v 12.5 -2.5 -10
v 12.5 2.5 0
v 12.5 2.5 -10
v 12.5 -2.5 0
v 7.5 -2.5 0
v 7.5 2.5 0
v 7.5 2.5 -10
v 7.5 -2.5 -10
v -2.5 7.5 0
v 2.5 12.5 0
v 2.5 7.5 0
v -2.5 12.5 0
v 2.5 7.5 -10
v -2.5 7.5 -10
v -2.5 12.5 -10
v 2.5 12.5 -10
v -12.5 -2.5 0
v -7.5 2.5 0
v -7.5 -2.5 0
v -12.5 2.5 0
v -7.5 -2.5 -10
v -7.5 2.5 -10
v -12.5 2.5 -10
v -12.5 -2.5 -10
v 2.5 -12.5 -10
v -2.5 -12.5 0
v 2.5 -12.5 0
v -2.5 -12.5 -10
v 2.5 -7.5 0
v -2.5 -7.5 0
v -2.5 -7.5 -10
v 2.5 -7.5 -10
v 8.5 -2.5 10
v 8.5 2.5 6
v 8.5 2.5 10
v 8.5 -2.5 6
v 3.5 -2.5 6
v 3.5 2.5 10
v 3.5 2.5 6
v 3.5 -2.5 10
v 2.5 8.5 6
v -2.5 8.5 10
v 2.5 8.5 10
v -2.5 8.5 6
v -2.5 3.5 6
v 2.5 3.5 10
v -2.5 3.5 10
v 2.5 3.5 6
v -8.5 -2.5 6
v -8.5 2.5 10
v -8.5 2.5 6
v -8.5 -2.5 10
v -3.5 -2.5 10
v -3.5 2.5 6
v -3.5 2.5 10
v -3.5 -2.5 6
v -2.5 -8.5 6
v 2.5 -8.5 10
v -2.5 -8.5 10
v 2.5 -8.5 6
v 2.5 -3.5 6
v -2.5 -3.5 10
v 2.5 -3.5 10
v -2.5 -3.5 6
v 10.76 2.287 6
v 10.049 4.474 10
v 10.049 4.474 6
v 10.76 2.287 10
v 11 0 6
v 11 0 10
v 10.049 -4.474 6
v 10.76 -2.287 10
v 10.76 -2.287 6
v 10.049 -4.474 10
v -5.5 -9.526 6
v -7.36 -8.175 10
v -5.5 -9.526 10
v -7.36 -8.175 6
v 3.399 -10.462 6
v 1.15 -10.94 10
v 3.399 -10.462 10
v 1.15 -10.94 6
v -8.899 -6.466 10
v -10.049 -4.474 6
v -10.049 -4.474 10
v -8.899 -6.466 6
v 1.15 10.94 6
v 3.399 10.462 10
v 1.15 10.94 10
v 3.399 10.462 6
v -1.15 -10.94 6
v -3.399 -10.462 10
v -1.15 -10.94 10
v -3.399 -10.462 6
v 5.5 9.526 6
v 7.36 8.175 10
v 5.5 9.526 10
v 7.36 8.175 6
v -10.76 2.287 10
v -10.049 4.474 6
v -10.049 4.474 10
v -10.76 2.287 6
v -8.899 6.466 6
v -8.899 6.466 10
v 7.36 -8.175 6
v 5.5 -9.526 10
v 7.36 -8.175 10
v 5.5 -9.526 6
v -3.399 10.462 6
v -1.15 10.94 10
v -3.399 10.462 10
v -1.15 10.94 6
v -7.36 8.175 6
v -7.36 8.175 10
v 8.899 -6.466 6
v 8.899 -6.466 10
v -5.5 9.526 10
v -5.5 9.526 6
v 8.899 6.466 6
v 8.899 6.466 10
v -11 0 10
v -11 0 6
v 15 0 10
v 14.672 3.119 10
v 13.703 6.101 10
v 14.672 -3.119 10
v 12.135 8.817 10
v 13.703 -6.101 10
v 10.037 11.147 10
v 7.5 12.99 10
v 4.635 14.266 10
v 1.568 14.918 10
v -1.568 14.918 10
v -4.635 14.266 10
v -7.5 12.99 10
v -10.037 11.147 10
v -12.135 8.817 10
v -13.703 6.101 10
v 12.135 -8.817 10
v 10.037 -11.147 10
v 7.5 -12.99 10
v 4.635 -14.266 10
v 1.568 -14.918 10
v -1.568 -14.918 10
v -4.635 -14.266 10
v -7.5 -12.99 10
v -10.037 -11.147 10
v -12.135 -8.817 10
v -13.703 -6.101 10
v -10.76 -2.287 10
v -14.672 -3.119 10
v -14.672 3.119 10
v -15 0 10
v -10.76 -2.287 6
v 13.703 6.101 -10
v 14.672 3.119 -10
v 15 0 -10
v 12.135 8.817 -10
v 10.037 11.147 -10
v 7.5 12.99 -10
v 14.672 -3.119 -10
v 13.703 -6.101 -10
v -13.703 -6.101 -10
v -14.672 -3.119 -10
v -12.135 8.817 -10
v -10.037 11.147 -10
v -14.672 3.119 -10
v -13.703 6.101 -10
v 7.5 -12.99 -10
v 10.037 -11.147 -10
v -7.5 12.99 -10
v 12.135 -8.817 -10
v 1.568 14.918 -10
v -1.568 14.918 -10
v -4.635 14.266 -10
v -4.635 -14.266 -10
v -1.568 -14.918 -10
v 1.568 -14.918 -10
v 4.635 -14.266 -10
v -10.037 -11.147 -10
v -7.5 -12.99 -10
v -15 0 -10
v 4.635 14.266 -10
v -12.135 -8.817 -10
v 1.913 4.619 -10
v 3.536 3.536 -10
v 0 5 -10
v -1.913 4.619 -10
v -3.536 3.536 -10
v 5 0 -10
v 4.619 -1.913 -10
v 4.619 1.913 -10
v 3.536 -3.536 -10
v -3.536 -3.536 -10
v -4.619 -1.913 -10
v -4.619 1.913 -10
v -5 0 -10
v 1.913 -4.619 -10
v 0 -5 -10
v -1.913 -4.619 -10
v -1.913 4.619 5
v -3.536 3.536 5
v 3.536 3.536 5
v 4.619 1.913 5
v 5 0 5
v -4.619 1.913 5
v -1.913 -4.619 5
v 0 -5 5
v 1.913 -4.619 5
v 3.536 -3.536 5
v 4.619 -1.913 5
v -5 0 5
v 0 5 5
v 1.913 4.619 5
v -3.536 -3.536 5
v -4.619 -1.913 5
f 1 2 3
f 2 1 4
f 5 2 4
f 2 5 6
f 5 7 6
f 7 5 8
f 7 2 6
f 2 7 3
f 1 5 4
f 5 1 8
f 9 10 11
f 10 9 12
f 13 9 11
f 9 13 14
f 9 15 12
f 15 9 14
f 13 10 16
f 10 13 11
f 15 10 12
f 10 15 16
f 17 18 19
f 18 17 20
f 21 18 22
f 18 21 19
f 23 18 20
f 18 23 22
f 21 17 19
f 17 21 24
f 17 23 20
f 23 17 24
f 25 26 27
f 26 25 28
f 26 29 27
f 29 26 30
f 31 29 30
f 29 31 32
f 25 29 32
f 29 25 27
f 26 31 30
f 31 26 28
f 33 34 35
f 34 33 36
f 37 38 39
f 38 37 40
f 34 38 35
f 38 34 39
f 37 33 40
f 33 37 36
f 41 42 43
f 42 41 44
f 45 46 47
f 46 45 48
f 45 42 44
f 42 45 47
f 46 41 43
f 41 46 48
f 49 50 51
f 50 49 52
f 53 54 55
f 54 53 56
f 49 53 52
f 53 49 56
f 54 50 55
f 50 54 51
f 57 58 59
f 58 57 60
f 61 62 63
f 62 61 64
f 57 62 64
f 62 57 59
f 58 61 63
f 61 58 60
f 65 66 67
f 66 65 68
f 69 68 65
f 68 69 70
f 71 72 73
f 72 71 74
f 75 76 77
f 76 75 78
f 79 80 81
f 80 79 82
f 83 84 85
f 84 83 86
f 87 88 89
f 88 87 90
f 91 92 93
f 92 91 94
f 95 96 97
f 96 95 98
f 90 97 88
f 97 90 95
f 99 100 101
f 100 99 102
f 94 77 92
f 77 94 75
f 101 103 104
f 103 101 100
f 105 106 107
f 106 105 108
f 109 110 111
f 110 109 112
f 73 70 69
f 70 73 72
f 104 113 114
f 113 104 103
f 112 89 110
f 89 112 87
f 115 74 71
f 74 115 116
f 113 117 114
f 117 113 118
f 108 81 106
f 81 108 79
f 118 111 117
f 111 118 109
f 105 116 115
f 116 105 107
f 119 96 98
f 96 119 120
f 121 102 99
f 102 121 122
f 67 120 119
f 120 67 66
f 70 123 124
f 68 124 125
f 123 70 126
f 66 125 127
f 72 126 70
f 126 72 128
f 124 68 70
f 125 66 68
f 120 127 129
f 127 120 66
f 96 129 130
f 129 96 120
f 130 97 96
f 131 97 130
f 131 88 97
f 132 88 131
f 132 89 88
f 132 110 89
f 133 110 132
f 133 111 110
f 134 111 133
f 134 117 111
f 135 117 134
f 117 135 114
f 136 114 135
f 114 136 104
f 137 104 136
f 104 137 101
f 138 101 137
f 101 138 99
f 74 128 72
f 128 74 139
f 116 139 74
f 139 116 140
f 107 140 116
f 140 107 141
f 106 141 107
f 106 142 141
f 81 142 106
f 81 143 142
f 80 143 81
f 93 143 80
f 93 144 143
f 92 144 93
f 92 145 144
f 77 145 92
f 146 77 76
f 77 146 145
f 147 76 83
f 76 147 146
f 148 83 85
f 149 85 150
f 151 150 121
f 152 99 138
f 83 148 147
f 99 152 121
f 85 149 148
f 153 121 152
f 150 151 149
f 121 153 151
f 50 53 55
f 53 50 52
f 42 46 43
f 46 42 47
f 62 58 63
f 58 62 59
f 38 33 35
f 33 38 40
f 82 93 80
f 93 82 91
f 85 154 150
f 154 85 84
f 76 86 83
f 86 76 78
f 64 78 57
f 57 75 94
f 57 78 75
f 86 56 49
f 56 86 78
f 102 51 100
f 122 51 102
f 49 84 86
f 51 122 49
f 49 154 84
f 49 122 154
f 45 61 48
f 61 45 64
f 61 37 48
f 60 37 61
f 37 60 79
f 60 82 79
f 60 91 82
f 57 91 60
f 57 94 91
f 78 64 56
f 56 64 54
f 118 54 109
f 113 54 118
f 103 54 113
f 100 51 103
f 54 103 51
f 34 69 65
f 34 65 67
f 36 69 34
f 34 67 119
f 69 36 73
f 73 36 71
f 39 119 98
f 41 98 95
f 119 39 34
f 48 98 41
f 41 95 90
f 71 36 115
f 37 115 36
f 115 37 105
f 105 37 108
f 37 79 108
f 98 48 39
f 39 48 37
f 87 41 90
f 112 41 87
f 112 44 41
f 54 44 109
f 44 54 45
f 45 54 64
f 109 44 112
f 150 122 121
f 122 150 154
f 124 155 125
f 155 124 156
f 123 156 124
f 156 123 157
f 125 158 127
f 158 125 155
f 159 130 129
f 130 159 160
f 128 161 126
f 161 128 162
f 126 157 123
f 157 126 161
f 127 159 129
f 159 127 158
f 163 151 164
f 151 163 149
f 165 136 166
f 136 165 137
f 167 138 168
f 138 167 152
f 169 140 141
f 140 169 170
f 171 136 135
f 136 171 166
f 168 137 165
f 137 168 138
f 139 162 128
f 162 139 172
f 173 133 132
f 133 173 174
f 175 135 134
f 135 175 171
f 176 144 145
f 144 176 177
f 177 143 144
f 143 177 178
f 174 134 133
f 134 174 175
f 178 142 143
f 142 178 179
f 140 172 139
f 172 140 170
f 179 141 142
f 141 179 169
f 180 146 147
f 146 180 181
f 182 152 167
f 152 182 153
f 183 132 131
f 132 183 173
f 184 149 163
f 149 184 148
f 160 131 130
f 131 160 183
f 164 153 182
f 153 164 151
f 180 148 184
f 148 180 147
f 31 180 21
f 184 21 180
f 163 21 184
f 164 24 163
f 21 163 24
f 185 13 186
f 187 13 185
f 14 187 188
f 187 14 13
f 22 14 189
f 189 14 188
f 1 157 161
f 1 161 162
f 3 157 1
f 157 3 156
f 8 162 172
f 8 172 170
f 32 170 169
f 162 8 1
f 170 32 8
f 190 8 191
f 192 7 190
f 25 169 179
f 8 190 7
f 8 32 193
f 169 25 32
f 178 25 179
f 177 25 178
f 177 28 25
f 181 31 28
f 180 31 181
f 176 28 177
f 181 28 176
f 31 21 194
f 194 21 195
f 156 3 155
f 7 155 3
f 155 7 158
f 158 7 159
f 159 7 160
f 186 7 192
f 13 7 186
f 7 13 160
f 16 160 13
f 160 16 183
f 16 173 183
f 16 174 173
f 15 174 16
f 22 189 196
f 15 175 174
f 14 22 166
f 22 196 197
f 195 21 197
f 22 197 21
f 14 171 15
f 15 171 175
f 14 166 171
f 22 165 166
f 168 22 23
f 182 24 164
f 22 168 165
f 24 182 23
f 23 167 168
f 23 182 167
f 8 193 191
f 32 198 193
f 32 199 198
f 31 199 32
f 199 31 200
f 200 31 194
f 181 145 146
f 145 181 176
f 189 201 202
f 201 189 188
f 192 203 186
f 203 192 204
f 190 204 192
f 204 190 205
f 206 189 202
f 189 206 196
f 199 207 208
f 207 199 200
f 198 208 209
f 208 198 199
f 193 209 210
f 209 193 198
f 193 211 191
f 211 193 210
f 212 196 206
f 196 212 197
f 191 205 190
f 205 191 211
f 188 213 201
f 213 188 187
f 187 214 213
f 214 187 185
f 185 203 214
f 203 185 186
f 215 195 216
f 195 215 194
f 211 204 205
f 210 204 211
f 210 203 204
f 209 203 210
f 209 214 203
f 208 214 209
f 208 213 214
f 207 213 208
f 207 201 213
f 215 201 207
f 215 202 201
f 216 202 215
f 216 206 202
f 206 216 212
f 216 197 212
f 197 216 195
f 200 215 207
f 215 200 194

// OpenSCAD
module reconstruct_object() {
    difference() {
        // Base cylinder
        cylinder(h = 20, r = 15, center = true);

        // Hole in the center
        translate([0, 0, -10])
        cylinder(h = 30, r = 5, center = true);

        // Cutout indentations along the sides
        for (i = [0, 90, 180, 270]) {
            rotate([0, 0, i]) {
                translate([10, 0, -10])
                cube([5, 5, 20], center = true);
            }
        }

        // Additional details as seen in the images
        translate([0, 0, 8])
        difference() {
            cylinder(h = 4, r = 11, center = true);

            for (angle = [0, 90, 180, 270]) {
                rotate([0, 0, angle])
                translate([6, 0, 0])
                cube([5, 5, 5], center = true);
            }
        }
    }
}

// Render the object
reconstruct_object();
